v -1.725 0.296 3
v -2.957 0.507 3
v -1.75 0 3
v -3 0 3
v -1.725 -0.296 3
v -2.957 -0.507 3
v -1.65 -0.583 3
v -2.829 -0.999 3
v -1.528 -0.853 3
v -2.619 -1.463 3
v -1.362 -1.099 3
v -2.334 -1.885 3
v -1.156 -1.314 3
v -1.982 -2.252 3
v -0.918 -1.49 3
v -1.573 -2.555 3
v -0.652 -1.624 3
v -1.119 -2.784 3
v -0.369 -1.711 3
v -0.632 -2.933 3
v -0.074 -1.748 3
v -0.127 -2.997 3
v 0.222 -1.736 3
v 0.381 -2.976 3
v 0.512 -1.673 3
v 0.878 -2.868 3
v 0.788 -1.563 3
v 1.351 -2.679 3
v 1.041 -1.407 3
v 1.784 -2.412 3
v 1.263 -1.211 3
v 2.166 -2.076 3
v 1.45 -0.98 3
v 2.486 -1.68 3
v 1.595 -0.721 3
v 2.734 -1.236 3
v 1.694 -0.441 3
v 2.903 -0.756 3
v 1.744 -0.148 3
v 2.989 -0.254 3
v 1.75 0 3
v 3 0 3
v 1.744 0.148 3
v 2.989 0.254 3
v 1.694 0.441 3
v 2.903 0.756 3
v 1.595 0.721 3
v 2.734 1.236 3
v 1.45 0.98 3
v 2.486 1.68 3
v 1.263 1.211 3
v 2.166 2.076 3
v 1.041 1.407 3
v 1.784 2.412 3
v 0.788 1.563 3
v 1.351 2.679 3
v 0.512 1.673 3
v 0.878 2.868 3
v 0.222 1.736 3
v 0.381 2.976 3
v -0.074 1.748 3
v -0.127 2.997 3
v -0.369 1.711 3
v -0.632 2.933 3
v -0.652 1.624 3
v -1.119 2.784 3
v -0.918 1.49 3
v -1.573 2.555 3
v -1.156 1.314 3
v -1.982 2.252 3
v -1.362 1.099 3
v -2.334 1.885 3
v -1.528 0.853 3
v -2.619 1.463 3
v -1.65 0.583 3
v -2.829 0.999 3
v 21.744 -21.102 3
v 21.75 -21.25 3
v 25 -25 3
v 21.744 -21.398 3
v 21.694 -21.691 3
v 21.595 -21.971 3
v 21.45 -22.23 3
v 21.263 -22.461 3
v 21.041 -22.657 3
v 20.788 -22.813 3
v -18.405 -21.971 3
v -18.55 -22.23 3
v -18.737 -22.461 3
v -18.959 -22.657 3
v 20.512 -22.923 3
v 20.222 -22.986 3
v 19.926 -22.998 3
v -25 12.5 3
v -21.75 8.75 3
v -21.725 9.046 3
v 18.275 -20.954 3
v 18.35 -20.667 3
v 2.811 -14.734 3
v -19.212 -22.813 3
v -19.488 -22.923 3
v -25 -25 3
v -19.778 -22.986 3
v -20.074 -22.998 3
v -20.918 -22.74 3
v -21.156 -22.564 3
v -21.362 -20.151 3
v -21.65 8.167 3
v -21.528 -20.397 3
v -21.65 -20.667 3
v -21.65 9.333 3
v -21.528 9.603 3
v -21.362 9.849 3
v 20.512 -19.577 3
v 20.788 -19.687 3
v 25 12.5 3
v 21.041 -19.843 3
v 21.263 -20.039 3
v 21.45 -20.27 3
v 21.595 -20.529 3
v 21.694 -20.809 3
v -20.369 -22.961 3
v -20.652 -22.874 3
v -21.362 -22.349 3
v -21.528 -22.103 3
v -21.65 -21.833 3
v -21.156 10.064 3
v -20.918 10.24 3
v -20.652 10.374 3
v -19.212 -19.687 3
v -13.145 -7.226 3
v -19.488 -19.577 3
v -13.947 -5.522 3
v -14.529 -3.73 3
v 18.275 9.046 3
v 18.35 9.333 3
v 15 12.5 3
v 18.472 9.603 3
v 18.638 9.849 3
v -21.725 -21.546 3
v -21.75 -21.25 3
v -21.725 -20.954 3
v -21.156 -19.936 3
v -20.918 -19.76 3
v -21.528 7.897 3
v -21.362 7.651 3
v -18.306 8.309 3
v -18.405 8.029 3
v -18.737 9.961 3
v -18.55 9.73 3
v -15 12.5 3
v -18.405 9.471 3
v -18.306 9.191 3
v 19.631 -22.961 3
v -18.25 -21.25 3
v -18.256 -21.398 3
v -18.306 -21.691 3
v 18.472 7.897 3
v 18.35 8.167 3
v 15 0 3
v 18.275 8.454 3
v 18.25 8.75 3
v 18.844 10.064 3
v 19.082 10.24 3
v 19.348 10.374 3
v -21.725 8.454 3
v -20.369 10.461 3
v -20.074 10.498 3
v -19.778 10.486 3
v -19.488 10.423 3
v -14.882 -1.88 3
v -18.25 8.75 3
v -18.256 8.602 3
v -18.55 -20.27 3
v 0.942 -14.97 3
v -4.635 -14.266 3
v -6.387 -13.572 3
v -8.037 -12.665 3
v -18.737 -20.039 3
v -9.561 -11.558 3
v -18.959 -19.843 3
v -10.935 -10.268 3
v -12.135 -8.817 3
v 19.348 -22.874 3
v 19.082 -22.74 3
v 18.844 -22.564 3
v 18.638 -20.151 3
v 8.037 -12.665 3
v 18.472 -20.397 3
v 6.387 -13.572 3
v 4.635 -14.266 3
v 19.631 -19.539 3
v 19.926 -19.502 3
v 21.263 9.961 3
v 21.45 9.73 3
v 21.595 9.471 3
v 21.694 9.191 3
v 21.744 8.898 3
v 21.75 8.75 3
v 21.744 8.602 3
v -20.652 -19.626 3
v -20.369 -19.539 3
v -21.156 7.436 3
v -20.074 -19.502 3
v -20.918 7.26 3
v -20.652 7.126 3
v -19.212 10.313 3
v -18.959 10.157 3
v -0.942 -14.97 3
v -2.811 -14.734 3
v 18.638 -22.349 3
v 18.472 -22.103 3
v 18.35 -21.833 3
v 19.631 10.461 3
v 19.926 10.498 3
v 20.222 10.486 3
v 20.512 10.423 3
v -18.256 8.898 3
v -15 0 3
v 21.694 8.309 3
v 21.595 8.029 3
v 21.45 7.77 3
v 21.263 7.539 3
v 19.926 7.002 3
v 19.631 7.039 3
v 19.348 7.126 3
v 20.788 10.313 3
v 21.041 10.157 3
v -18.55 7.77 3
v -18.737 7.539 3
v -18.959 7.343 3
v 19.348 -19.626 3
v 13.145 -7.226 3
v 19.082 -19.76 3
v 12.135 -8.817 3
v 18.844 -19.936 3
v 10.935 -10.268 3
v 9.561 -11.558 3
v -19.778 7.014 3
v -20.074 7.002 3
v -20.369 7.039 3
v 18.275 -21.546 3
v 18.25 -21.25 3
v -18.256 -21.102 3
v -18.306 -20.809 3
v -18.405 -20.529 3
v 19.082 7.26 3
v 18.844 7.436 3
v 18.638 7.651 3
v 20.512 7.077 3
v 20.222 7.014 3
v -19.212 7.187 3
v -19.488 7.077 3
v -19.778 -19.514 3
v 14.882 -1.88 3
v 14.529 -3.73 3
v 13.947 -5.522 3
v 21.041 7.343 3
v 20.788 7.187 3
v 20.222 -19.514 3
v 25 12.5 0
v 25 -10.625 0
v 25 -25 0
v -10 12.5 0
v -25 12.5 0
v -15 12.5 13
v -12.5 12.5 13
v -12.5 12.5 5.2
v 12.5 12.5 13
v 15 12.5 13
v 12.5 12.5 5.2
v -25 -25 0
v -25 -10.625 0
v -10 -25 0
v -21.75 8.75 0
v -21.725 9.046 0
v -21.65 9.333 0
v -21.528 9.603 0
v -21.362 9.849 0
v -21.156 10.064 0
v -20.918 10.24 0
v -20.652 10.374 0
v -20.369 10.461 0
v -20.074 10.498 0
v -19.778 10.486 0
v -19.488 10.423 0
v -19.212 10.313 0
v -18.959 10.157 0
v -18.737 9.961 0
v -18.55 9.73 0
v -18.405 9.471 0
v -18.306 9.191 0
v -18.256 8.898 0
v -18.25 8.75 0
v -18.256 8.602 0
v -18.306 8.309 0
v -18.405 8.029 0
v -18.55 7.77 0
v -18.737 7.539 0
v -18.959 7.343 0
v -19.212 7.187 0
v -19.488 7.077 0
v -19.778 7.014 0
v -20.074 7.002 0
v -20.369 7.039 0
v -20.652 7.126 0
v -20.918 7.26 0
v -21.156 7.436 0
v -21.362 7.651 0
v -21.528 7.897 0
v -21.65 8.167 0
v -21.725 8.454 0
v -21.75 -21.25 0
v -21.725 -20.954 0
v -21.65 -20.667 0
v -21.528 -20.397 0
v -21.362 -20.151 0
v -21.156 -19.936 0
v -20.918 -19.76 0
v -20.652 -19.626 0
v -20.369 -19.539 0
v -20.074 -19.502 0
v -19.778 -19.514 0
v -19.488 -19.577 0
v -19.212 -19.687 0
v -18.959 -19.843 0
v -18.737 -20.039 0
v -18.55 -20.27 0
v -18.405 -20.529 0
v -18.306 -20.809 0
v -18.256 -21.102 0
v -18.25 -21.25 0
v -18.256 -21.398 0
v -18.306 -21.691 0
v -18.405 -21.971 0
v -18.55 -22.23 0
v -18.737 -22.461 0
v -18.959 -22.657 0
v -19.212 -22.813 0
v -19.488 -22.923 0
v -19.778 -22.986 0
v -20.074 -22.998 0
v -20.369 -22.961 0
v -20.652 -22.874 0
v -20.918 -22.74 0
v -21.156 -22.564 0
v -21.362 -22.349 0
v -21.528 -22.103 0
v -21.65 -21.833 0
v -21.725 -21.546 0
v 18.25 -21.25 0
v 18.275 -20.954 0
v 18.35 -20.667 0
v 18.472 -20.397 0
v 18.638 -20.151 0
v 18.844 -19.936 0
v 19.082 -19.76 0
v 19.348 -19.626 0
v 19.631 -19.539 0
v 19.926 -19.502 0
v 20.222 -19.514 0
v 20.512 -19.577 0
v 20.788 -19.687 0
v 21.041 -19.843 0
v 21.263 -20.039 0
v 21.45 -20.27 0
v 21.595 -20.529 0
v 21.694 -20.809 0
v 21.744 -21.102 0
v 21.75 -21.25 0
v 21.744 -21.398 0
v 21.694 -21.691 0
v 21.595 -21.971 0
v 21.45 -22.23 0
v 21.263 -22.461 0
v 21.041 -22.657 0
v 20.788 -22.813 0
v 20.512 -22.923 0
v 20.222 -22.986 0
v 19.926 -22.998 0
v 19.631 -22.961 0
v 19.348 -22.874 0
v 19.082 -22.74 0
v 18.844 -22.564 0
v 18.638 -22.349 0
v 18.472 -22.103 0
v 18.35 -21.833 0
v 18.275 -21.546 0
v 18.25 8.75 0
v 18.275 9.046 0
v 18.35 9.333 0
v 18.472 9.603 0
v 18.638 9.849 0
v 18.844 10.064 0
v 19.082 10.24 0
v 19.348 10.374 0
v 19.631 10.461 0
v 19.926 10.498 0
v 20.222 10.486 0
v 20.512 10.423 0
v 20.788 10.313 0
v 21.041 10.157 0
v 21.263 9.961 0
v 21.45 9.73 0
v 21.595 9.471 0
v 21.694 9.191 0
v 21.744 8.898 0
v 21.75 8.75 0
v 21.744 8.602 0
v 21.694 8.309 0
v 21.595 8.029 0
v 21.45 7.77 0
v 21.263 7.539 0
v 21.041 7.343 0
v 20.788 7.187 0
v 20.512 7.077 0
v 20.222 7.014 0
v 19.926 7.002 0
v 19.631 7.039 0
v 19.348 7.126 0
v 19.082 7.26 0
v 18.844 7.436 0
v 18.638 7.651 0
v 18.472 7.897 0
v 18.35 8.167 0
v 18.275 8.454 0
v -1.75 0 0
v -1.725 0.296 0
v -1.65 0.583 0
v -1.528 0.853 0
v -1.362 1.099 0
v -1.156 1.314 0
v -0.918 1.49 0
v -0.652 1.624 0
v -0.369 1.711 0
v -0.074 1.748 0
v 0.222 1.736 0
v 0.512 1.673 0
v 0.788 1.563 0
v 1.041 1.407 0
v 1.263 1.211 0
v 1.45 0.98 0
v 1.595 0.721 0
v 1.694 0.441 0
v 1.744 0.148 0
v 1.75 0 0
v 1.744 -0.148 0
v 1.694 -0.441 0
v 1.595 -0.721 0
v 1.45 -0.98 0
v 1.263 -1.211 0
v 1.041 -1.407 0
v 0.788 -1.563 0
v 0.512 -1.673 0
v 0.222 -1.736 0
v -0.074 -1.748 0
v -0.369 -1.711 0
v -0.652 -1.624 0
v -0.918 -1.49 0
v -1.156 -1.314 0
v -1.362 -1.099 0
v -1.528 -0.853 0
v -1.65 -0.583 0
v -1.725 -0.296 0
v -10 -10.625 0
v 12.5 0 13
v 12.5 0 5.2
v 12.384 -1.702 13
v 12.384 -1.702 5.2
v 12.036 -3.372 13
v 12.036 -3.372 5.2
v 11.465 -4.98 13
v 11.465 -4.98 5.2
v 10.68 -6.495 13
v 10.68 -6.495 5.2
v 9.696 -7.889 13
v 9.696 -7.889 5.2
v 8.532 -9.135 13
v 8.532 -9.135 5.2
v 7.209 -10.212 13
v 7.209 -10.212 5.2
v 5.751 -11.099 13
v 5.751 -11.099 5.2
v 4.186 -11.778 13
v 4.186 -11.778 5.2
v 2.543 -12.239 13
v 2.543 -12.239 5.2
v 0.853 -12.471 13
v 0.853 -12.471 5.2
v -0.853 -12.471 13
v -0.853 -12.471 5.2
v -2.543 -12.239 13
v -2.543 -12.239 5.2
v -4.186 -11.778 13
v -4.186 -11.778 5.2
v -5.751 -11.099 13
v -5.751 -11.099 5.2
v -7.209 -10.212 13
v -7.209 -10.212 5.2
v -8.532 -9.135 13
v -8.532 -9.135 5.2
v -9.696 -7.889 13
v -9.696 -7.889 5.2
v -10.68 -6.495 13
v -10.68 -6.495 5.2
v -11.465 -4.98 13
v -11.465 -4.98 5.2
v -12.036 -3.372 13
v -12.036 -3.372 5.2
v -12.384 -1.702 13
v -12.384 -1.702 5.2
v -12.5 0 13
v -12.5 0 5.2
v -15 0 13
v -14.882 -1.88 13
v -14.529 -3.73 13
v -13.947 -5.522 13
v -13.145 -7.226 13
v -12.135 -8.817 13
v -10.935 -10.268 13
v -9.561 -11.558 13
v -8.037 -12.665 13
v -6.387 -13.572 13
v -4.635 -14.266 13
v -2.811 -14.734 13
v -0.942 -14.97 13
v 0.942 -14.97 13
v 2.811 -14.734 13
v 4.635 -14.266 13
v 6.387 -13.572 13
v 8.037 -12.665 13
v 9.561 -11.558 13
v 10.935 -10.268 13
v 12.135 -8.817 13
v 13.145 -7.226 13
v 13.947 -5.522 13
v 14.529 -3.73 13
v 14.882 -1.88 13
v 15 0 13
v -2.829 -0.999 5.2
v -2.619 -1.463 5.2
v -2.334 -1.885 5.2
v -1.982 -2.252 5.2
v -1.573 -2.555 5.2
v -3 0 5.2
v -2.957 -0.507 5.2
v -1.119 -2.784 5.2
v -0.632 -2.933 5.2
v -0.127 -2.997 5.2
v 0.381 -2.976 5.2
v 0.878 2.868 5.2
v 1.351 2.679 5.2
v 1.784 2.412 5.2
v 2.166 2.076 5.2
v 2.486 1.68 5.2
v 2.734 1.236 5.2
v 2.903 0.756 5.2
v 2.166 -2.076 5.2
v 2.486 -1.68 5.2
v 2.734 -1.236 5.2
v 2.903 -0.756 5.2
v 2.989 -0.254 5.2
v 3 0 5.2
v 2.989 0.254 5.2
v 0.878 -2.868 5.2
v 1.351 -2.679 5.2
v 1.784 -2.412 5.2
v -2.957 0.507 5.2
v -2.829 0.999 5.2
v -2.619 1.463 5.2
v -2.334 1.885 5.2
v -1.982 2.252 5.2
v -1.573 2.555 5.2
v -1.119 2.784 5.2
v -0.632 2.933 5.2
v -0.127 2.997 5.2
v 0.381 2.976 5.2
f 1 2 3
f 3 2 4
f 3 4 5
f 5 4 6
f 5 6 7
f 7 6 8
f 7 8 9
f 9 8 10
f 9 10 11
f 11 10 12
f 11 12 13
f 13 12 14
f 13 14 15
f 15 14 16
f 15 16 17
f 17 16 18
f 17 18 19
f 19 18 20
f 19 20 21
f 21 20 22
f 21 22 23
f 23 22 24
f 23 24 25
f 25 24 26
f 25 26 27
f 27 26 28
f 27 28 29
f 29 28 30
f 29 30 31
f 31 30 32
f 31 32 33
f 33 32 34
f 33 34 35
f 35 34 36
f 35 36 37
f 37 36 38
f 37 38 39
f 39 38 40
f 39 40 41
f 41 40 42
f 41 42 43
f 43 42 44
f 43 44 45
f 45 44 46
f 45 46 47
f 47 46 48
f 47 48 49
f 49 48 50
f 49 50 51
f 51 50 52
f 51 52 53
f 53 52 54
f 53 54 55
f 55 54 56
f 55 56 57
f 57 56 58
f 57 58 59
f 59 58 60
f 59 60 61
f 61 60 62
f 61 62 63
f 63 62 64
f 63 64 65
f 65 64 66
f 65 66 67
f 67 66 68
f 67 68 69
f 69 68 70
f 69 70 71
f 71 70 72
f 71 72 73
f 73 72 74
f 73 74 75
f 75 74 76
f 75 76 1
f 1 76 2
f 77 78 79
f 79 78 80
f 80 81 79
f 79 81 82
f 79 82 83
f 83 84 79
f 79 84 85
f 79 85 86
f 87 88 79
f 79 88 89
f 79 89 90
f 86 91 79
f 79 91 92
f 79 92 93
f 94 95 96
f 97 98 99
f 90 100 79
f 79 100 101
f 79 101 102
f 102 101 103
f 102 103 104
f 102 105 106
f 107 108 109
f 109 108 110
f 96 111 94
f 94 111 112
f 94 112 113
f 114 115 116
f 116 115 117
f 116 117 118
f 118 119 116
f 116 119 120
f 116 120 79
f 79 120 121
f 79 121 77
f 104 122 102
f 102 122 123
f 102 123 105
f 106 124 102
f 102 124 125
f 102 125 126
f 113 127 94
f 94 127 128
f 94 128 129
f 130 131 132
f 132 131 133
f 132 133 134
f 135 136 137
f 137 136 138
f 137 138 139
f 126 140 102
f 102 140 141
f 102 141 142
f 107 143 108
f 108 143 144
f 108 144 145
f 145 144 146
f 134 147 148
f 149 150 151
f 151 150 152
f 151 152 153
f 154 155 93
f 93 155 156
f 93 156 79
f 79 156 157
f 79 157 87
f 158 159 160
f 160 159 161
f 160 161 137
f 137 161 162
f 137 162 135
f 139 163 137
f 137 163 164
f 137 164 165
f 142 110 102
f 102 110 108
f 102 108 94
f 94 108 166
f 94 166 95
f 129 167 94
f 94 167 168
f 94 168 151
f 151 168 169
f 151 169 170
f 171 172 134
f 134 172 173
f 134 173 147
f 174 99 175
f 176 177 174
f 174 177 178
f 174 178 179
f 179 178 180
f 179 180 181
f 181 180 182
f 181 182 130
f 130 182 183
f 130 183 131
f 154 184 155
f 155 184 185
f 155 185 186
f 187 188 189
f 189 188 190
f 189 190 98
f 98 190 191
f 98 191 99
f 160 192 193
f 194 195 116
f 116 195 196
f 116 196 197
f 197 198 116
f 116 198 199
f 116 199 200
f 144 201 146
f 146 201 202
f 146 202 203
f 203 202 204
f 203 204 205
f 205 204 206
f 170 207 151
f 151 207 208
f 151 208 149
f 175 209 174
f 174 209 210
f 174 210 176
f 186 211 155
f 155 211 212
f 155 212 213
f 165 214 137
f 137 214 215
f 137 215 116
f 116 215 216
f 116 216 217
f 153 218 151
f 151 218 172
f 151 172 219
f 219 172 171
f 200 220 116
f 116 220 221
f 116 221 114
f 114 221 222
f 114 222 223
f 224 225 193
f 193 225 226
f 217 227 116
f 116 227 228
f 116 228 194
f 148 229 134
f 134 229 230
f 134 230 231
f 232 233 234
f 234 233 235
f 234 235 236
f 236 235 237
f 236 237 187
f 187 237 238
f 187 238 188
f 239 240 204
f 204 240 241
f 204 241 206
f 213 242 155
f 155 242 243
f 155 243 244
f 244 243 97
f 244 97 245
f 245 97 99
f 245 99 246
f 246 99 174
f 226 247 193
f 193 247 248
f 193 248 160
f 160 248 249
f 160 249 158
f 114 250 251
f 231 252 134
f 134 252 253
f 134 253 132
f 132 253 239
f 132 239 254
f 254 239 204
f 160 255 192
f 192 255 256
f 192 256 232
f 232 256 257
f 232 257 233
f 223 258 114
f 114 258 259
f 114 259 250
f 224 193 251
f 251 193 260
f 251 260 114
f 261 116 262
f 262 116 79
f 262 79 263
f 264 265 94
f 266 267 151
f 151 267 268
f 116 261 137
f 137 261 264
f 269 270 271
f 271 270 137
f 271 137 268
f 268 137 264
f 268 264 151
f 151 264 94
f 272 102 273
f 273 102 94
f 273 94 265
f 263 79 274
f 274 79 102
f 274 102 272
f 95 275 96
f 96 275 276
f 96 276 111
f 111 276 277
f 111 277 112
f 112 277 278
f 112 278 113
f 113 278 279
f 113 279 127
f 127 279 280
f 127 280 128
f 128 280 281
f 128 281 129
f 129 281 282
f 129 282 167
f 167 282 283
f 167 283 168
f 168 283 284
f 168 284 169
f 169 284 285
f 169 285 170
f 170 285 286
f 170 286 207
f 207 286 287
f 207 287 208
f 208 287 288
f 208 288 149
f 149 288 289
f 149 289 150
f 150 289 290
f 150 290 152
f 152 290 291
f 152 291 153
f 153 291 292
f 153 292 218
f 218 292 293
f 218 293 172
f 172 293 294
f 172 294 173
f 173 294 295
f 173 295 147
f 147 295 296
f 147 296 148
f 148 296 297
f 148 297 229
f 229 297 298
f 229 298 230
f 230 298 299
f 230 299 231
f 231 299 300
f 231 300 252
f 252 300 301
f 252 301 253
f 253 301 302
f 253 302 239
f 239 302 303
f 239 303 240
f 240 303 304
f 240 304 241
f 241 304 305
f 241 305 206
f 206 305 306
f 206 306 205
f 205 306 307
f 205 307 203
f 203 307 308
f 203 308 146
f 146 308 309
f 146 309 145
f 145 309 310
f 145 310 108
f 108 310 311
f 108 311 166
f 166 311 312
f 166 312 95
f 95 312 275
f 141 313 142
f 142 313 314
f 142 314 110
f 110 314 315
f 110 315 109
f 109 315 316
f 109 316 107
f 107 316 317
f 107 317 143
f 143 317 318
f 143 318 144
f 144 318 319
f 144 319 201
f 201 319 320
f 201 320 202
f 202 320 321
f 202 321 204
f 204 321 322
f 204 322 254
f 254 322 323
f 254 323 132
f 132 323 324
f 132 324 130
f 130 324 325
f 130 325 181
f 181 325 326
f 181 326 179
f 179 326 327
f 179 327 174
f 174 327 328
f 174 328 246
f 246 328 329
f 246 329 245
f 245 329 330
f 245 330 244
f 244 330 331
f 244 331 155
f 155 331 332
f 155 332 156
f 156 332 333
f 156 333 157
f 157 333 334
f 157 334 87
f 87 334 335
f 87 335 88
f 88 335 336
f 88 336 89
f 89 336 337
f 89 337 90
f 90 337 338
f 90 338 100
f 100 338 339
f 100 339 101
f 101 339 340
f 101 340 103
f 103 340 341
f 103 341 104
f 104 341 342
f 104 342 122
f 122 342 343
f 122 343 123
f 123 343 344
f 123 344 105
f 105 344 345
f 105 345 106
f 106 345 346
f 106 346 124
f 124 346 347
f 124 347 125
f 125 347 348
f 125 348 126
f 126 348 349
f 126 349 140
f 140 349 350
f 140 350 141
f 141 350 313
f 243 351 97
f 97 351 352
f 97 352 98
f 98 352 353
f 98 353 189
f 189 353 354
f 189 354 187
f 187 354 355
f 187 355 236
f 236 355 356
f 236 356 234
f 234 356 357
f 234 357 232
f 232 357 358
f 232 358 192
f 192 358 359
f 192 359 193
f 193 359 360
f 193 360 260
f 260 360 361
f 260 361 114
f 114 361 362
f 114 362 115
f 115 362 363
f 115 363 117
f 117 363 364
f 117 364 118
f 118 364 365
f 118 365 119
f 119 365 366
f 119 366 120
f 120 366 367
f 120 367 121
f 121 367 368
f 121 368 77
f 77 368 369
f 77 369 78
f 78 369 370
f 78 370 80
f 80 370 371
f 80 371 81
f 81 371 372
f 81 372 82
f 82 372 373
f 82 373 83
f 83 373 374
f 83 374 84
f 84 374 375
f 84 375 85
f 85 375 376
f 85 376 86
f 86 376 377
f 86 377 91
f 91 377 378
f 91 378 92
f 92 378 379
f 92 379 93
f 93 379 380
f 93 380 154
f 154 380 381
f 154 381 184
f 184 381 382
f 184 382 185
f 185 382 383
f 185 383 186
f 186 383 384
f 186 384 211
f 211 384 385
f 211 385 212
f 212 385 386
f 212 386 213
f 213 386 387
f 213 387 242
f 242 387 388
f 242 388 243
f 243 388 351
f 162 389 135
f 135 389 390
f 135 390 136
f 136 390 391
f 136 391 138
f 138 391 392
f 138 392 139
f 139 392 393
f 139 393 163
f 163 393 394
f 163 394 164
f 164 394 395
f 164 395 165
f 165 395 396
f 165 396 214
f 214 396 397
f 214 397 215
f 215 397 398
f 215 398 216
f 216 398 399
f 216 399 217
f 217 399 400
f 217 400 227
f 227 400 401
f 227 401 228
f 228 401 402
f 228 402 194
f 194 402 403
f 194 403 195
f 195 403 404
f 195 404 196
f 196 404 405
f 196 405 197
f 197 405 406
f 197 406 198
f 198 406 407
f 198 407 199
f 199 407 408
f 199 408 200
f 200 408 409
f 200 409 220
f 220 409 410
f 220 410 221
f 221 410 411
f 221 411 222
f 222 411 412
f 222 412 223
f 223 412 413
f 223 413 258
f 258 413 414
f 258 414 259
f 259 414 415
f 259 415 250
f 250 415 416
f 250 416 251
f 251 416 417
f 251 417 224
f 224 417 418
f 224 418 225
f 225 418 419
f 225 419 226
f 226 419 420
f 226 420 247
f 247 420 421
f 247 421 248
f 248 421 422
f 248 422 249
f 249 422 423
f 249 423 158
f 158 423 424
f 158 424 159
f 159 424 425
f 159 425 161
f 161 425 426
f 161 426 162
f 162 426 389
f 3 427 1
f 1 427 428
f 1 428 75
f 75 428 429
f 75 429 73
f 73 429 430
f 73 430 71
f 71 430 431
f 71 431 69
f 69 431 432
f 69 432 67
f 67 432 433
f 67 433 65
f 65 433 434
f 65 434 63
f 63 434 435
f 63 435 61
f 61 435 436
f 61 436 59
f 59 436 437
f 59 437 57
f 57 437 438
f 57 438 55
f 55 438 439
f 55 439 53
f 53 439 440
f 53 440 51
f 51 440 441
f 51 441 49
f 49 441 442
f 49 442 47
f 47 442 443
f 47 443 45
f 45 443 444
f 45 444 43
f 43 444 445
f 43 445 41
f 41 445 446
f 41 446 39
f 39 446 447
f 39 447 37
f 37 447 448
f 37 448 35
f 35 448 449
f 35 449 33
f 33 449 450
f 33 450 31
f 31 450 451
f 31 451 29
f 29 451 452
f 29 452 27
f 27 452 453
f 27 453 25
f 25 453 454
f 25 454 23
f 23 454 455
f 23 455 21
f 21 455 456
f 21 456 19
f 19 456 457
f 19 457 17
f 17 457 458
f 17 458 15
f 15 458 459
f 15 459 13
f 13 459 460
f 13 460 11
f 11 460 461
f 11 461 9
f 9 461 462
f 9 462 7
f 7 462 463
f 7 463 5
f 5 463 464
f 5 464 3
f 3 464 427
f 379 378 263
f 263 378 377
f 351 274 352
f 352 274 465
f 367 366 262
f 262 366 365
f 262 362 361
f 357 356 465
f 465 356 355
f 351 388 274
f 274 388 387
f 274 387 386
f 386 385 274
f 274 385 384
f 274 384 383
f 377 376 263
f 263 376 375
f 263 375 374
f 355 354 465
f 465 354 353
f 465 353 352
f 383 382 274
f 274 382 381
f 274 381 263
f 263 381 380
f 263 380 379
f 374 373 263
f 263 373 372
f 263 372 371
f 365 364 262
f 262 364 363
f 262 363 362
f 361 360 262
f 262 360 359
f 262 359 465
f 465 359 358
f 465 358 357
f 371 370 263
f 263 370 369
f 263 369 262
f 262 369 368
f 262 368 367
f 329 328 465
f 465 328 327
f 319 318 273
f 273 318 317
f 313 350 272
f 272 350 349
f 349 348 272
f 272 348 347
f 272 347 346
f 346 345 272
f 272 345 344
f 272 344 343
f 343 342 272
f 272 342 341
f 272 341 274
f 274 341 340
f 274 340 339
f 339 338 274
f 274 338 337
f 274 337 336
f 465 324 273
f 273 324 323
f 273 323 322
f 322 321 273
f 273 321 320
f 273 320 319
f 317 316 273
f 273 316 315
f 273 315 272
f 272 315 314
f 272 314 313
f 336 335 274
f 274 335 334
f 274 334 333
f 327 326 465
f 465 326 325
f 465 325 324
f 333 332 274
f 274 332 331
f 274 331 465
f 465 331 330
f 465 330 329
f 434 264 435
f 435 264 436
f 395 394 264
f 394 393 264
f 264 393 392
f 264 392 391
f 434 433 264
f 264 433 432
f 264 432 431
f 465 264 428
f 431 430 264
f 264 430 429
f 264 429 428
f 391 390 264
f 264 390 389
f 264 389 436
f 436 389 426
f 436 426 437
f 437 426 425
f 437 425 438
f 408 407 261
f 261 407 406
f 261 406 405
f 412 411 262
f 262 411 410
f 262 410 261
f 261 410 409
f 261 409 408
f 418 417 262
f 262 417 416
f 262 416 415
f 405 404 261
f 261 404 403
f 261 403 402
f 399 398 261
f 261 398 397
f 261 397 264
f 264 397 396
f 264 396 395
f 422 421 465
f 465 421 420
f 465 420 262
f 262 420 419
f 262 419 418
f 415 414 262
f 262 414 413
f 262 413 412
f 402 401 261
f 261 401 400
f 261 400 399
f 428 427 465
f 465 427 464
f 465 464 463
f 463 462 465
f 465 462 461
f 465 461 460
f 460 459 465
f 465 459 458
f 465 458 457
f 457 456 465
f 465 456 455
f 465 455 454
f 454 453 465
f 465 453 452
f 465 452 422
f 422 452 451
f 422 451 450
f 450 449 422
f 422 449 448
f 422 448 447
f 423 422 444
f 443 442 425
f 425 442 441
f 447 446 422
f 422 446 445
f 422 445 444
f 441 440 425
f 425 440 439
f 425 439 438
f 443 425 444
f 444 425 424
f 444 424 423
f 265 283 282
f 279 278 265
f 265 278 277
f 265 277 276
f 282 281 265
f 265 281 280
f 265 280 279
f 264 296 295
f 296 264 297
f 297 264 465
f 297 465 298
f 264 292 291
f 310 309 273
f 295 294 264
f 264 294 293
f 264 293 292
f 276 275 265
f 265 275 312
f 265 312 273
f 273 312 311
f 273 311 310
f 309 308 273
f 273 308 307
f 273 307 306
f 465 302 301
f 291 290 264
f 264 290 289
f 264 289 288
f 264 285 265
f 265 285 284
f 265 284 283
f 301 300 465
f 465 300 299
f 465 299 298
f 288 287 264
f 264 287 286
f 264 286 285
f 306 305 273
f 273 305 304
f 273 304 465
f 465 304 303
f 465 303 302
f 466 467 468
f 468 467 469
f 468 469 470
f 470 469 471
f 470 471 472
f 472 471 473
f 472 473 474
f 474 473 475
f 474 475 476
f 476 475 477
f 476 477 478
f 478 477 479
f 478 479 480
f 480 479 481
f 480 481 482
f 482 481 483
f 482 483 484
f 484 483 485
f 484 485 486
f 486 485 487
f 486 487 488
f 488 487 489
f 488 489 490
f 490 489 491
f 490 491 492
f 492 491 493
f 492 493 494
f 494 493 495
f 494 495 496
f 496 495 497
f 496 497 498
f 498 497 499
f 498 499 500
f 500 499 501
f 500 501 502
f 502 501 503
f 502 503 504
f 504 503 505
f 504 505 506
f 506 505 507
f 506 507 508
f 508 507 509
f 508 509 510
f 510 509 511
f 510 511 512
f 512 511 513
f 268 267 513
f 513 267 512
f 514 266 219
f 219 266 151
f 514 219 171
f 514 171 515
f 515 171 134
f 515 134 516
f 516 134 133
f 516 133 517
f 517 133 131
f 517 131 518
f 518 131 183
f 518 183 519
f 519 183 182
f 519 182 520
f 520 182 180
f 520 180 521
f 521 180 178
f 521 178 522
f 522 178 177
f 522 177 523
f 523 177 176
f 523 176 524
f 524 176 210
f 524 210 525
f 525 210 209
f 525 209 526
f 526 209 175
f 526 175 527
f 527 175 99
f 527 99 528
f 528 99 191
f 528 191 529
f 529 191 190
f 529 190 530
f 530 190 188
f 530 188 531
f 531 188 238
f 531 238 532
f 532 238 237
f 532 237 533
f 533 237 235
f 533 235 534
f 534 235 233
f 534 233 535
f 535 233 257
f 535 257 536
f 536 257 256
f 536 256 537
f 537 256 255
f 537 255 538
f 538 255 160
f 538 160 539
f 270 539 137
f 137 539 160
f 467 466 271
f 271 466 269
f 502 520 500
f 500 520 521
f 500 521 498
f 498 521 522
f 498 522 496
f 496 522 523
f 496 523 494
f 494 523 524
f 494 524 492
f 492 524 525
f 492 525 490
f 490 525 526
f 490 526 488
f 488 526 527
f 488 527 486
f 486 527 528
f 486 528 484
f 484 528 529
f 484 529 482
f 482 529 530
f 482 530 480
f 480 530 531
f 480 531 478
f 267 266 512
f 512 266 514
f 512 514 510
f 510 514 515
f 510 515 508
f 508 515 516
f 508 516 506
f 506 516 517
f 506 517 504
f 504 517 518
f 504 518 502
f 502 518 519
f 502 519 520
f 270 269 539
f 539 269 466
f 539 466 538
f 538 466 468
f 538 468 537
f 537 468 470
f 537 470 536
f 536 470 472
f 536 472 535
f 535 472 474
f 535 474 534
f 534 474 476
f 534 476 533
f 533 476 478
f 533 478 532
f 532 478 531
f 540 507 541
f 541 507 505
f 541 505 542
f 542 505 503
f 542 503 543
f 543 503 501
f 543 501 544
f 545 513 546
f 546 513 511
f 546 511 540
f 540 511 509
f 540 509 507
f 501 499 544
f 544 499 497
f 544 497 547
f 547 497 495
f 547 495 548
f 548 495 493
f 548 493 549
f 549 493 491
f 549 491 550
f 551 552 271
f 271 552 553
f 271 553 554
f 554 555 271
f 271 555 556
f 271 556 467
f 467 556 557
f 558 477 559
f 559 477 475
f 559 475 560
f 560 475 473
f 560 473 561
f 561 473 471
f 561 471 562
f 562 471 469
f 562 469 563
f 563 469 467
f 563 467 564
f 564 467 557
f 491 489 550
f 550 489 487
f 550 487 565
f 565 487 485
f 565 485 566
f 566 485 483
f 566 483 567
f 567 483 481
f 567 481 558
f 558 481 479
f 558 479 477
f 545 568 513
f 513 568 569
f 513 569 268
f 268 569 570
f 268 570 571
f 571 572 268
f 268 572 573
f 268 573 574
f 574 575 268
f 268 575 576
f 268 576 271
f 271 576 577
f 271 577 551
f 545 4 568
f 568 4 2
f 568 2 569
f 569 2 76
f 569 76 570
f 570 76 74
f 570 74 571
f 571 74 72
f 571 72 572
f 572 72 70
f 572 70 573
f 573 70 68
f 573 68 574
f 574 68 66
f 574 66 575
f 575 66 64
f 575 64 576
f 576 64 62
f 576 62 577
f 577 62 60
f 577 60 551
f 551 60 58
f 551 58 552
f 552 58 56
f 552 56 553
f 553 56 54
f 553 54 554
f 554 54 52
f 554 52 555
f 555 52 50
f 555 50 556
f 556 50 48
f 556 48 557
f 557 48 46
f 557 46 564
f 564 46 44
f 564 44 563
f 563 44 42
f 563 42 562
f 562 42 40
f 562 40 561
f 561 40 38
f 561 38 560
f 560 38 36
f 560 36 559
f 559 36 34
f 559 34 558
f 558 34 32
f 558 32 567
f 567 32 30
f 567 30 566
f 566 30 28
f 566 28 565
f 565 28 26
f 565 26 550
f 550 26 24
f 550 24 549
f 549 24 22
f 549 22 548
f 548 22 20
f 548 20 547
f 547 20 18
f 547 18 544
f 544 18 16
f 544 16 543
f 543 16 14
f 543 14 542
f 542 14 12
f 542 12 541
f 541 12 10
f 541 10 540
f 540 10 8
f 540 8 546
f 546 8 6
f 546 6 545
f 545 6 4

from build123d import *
from build123d.topology import SkipClean

# Parameters (mm, degrees)
SCHIZZO1_R                   = 1.75
SCHIZZO1_R_2                 = 12.5
ESTRUSIONE_ESTRUSIONE1_DEPTH = 3
ESTRUSIONE_ESTRUSIONE2_DEPTH = 10
SCHIZZO3_R                   = 3
ESTRUSIONE_ESTRUSIONE3_DEPTH = 2.2


with BuildPart() as part:
    # Schizzo1 → Estrusione-Estrusione1 (new body)
    # profile 1 of 3: a face of its own
    with SkipClean():  # the faces are left unmerged after this step: merging them gives an invalid solid
        with BuildSketch(Plane.XY):
            with BuildLine():
                Line((-8.291561976, 12.5), (-25, 12.5))
                Line((-25, 12.5), (-25, -25))
                Line((-25, -25), (25, -25))
                Line((25, -25), (25, 12.5))
                Line((25, 12.5), (8.291561976, 12.5))
                ThreePointArc((8.291561976, 12.5), (0, -15), (-8.291561976, 12.5))
            make_face()
            with Locations((-20, -21.25)):
                Circle(SCHIZZO1_R, mode=Mode.SUBTRACT)
            with Locations((20, -21.25)):
                Circle(SCHIZZO1_R, mode=Mode.SUBTRACT)
            with Locations((-20, 8.75)):
                Circle(SCHIZZO1_R, mode=Mode.SUBTRACT)
            with Locations((20, 8.75)):
                Circle(SCHIZZO1_R, mode=Mode.SUBTRACT)
        # profile 2 of 3: a face of its own
        with BuildSketch(Plane.XY):
            with BuildLine():
                Line((-4.8e-08, 12.5), (-8.291561976, 12.5))
                ThreePointArc((-8.291561976, 12.5), (0, -15), (8.291561976, 12.5))
                Line((8.291561976, 12.5), (-4.8e-08, 12.5))
            make_face()
            with BuildLine():
                ThreePointArc((12.5, 0), (-8.838834748, -8.838834782), (-4.8e-08, 12.5))
                ThreePointArc((-4.8e-08, 12.5), (8.838834748, 8.838834782), (12.5, 0))
            make_face(mode=Mode.SUBTRACT)
        # profile 3 of 3: a face of its own
        with BuildSketch(Plane.XY):
            Circle(SCHIZZO1_R_2)
            Circle(SCHIZZO1_R, mode=Mode.SUBTRACT)
        extrude(amount=ESTRUSIONE_ESTRUSIONE1_DEPTH)

    # Schizzo2 → Estrusione-Estrusione2 (add)
    with BuildSketch(Plane.XY.offset(3)):
        with BuildLine():
            Line((15, 0), (15, 12.5))
            Line((15, 12.5), (12.5, 12.5))
            Line((12.5, 12.5), (12.5, 0))
            ThreePointArc((12.5, 0), (0, -12.5), (-12.5, 0))
            Line((-12.5, 0), (-12.5, 12.5))
            Line((-12.5, 12.5), (-15, 12.5))
            Line((-15, 12.5), (-15, 0))
            ThreePointArc((-15, 0), (0, -15), (15, 0))
        make_face()
    extrude(amount=ESTRUSIONE_ESTRUSIONE2_DEPTH)

    # Schizzo3 → Estrusione-Estrusione3 (add)
    with BuildSketch(Plane.XY.offset(3)):
        with BuildLine():
            Line((12.5, 0), (12.5, 12.5))
            Line((12.5, 12.5), (-12.5, 12.5))
            Line((-12.5, 12.5), (-12.5, 0))
            ThreePointArc((-12.5, 0), (0, -12.5), (12.5, 0))
        make_face()
        Circle(SCHIZZO3_R, mode=Mode.SUBTRACT)
    extrude(amount=ESTRUSIONE_ESTRUSIONE3_DEPTH)


solid = part.part
